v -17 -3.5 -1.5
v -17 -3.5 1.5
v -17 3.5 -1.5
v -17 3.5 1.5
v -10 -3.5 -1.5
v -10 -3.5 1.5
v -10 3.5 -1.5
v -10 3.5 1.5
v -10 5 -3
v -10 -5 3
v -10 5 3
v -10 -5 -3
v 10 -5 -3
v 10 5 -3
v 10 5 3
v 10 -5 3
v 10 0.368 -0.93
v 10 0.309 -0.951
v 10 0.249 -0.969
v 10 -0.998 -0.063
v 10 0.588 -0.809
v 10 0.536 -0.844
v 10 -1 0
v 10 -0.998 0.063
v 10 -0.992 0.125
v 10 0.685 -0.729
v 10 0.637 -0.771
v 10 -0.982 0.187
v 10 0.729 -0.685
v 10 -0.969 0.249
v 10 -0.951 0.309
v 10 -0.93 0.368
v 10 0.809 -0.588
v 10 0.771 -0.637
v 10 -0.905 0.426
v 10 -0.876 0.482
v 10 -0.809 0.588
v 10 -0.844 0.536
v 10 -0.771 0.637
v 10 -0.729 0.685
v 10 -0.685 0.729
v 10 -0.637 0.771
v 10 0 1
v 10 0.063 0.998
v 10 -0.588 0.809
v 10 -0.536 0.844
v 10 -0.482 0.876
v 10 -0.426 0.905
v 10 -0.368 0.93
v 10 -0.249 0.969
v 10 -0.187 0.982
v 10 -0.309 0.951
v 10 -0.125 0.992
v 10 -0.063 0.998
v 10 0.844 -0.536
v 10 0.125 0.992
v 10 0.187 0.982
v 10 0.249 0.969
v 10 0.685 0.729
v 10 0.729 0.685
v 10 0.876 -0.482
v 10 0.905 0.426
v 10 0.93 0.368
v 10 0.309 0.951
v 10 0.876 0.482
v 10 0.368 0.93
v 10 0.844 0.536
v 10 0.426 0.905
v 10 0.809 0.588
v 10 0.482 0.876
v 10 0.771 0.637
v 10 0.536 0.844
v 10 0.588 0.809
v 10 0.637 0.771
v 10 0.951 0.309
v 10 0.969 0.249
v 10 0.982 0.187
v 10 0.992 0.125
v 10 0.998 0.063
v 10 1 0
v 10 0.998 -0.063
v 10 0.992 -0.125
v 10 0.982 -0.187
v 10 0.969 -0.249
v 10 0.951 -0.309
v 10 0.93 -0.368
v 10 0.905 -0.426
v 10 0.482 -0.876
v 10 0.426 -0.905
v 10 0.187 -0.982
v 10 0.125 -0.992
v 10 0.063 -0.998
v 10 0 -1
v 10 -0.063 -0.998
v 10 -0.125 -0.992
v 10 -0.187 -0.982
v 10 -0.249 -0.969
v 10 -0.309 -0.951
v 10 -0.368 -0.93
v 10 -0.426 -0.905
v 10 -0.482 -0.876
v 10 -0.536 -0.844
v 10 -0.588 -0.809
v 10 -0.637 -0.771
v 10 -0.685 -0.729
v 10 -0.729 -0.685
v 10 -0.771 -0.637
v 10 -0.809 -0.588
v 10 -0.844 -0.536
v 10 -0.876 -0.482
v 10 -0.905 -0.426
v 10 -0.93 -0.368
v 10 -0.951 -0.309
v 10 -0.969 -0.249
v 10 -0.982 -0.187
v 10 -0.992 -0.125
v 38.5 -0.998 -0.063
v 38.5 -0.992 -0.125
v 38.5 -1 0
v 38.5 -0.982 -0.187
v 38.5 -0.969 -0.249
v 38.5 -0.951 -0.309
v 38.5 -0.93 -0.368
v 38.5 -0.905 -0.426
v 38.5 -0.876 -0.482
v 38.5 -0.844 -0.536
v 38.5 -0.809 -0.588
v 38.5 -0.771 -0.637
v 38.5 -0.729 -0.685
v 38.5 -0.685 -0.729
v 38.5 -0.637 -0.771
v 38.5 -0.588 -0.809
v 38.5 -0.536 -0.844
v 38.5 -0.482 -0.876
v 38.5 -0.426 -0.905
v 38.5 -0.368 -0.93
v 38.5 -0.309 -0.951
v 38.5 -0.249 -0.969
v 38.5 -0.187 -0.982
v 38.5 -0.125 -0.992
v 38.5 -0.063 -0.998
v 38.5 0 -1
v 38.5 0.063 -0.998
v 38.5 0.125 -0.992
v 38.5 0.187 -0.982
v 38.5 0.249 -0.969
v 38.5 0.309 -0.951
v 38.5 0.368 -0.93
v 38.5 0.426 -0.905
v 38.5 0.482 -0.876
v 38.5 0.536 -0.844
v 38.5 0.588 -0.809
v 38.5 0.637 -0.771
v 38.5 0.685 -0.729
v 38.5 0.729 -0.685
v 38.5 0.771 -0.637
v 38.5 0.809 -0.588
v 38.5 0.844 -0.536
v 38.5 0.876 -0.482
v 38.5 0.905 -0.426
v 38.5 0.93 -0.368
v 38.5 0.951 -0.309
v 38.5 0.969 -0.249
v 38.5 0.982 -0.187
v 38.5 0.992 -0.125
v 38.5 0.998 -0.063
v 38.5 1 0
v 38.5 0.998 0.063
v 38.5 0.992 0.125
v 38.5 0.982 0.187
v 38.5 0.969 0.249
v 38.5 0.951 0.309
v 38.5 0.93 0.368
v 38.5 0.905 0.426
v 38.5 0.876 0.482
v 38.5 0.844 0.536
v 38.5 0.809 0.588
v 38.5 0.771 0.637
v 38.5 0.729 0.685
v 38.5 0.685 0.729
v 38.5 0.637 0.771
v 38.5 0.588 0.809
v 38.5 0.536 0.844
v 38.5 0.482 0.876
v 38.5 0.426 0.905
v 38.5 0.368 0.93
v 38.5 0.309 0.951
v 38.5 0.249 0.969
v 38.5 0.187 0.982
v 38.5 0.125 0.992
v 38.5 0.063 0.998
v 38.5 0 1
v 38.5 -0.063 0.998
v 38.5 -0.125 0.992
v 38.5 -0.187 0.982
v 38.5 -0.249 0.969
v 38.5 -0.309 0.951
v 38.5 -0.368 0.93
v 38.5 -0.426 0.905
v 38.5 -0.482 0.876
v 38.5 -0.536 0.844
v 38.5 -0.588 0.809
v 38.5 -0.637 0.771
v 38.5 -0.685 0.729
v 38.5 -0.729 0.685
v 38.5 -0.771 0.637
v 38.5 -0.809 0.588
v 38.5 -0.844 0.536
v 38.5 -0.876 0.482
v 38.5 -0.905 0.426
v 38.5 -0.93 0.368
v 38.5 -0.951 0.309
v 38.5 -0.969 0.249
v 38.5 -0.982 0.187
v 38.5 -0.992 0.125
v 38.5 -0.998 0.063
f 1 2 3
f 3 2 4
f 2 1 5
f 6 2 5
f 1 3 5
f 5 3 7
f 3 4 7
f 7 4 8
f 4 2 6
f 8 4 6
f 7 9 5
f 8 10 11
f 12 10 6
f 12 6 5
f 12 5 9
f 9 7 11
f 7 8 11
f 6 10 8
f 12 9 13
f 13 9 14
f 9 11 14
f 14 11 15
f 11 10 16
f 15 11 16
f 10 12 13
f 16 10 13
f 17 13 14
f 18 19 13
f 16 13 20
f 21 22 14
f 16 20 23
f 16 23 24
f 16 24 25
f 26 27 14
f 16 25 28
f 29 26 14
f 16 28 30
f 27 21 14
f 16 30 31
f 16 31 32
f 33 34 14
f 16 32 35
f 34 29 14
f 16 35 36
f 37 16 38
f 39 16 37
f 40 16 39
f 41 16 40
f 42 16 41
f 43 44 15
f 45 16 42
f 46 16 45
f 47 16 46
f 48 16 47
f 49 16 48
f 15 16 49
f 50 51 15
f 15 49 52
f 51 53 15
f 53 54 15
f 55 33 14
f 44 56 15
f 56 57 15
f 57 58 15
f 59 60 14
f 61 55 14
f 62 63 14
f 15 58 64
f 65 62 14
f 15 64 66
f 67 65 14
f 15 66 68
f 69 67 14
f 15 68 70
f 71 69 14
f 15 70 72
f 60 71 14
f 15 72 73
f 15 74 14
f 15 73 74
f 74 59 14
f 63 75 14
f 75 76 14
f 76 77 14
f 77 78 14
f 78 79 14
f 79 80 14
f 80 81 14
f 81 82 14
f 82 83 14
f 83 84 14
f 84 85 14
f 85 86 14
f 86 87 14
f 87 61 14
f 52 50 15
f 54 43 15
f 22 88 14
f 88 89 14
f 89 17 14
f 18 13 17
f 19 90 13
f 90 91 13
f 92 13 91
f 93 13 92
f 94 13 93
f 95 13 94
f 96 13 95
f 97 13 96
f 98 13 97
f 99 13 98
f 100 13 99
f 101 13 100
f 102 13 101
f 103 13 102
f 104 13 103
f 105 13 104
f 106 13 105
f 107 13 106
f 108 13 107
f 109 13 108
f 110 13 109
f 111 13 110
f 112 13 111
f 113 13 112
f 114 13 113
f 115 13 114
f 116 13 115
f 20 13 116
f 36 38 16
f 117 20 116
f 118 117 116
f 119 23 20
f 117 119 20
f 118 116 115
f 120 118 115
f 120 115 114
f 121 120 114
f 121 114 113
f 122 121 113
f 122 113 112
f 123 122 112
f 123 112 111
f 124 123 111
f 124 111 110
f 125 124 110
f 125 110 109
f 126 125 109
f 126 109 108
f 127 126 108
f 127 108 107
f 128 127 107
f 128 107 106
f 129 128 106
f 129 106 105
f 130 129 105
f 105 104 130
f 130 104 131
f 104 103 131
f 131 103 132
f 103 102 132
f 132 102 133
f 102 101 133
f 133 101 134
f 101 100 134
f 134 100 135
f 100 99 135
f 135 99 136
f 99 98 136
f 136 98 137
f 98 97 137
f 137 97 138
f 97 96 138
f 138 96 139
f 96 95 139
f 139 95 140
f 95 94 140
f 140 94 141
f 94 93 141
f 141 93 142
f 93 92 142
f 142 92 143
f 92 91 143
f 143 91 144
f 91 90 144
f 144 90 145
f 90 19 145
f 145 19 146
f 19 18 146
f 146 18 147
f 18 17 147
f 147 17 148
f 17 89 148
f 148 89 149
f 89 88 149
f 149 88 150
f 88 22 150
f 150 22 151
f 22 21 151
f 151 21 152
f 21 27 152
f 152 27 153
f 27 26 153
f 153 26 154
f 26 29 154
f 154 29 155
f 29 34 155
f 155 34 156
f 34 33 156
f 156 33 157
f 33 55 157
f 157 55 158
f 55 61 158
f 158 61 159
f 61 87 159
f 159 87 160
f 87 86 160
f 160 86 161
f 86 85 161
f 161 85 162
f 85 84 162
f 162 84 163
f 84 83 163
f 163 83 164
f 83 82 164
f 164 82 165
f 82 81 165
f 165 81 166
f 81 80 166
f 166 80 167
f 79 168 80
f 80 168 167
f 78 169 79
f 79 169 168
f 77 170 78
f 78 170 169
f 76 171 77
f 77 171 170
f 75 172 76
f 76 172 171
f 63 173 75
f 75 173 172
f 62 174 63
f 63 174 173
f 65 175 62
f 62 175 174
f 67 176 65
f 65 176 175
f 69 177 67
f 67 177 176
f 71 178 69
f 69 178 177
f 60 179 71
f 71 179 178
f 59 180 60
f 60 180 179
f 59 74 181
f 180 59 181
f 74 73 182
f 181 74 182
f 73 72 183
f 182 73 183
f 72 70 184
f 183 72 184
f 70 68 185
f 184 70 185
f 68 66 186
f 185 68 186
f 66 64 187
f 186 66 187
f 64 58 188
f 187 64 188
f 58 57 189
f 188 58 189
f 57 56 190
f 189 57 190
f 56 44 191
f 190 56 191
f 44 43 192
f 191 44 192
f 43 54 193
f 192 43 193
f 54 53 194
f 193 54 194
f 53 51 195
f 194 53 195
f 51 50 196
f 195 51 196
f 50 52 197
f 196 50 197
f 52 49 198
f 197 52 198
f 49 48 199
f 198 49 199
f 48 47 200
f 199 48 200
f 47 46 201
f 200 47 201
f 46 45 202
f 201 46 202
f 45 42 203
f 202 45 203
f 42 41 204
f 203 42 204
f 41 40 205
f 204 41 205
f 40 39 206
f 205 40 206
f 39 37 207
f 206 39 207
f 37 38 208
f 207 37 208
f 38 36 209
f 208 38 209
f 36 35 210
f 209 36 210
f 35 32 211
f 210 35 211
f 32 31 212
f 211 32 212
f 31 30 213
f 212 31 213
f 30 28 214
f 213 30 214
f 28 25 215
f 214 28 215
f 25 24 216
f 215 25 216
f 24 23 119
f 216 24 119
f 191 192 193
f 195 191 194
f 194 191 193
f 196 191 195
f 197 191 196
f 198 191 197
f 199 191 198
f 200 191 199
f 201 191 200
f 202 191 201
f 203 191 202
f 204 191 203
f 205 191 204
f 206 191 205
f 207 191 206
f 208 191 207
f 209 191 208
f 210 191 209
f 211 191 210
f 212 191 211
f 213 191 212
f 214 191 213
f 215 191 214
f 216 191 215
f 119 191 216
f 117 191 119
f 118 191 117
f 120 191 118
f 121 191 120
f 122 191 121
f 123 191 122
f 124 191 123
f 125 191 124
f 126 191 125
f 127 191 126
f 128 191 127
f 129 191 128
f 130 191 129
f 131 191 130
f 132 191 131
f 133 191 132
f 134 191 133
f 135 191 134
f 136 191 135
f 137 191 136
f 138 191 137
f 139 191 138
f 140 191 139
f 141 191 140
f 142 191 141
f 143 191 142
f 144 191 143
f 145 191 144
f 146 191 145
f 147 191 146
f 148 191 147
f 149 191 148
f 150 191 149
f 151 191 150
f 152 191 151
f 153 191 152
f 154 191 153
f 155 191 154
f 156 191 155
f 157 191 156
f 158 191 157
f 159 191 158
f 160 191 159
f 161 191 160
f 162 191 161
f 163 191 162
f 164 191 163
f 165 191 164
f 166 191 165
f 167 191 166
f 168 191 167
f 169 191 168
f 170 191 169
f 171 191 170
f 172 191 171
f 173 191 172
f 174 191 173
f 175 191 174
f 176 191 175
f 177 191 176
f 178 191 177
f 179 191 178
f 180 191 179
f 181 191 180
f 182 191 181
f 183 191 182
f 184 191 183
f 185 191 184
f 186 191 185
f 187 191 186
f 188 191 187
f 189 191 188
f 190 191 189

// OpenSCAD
$fn=100;
cube(size = [20,10,6], center = true);
translate([-13.5,0,0])cube(size = [7,7,3], center = true);
translate([13.5,0,0])rotate([0,90,0])cylinder(h = 50, r = 1, center = true);
